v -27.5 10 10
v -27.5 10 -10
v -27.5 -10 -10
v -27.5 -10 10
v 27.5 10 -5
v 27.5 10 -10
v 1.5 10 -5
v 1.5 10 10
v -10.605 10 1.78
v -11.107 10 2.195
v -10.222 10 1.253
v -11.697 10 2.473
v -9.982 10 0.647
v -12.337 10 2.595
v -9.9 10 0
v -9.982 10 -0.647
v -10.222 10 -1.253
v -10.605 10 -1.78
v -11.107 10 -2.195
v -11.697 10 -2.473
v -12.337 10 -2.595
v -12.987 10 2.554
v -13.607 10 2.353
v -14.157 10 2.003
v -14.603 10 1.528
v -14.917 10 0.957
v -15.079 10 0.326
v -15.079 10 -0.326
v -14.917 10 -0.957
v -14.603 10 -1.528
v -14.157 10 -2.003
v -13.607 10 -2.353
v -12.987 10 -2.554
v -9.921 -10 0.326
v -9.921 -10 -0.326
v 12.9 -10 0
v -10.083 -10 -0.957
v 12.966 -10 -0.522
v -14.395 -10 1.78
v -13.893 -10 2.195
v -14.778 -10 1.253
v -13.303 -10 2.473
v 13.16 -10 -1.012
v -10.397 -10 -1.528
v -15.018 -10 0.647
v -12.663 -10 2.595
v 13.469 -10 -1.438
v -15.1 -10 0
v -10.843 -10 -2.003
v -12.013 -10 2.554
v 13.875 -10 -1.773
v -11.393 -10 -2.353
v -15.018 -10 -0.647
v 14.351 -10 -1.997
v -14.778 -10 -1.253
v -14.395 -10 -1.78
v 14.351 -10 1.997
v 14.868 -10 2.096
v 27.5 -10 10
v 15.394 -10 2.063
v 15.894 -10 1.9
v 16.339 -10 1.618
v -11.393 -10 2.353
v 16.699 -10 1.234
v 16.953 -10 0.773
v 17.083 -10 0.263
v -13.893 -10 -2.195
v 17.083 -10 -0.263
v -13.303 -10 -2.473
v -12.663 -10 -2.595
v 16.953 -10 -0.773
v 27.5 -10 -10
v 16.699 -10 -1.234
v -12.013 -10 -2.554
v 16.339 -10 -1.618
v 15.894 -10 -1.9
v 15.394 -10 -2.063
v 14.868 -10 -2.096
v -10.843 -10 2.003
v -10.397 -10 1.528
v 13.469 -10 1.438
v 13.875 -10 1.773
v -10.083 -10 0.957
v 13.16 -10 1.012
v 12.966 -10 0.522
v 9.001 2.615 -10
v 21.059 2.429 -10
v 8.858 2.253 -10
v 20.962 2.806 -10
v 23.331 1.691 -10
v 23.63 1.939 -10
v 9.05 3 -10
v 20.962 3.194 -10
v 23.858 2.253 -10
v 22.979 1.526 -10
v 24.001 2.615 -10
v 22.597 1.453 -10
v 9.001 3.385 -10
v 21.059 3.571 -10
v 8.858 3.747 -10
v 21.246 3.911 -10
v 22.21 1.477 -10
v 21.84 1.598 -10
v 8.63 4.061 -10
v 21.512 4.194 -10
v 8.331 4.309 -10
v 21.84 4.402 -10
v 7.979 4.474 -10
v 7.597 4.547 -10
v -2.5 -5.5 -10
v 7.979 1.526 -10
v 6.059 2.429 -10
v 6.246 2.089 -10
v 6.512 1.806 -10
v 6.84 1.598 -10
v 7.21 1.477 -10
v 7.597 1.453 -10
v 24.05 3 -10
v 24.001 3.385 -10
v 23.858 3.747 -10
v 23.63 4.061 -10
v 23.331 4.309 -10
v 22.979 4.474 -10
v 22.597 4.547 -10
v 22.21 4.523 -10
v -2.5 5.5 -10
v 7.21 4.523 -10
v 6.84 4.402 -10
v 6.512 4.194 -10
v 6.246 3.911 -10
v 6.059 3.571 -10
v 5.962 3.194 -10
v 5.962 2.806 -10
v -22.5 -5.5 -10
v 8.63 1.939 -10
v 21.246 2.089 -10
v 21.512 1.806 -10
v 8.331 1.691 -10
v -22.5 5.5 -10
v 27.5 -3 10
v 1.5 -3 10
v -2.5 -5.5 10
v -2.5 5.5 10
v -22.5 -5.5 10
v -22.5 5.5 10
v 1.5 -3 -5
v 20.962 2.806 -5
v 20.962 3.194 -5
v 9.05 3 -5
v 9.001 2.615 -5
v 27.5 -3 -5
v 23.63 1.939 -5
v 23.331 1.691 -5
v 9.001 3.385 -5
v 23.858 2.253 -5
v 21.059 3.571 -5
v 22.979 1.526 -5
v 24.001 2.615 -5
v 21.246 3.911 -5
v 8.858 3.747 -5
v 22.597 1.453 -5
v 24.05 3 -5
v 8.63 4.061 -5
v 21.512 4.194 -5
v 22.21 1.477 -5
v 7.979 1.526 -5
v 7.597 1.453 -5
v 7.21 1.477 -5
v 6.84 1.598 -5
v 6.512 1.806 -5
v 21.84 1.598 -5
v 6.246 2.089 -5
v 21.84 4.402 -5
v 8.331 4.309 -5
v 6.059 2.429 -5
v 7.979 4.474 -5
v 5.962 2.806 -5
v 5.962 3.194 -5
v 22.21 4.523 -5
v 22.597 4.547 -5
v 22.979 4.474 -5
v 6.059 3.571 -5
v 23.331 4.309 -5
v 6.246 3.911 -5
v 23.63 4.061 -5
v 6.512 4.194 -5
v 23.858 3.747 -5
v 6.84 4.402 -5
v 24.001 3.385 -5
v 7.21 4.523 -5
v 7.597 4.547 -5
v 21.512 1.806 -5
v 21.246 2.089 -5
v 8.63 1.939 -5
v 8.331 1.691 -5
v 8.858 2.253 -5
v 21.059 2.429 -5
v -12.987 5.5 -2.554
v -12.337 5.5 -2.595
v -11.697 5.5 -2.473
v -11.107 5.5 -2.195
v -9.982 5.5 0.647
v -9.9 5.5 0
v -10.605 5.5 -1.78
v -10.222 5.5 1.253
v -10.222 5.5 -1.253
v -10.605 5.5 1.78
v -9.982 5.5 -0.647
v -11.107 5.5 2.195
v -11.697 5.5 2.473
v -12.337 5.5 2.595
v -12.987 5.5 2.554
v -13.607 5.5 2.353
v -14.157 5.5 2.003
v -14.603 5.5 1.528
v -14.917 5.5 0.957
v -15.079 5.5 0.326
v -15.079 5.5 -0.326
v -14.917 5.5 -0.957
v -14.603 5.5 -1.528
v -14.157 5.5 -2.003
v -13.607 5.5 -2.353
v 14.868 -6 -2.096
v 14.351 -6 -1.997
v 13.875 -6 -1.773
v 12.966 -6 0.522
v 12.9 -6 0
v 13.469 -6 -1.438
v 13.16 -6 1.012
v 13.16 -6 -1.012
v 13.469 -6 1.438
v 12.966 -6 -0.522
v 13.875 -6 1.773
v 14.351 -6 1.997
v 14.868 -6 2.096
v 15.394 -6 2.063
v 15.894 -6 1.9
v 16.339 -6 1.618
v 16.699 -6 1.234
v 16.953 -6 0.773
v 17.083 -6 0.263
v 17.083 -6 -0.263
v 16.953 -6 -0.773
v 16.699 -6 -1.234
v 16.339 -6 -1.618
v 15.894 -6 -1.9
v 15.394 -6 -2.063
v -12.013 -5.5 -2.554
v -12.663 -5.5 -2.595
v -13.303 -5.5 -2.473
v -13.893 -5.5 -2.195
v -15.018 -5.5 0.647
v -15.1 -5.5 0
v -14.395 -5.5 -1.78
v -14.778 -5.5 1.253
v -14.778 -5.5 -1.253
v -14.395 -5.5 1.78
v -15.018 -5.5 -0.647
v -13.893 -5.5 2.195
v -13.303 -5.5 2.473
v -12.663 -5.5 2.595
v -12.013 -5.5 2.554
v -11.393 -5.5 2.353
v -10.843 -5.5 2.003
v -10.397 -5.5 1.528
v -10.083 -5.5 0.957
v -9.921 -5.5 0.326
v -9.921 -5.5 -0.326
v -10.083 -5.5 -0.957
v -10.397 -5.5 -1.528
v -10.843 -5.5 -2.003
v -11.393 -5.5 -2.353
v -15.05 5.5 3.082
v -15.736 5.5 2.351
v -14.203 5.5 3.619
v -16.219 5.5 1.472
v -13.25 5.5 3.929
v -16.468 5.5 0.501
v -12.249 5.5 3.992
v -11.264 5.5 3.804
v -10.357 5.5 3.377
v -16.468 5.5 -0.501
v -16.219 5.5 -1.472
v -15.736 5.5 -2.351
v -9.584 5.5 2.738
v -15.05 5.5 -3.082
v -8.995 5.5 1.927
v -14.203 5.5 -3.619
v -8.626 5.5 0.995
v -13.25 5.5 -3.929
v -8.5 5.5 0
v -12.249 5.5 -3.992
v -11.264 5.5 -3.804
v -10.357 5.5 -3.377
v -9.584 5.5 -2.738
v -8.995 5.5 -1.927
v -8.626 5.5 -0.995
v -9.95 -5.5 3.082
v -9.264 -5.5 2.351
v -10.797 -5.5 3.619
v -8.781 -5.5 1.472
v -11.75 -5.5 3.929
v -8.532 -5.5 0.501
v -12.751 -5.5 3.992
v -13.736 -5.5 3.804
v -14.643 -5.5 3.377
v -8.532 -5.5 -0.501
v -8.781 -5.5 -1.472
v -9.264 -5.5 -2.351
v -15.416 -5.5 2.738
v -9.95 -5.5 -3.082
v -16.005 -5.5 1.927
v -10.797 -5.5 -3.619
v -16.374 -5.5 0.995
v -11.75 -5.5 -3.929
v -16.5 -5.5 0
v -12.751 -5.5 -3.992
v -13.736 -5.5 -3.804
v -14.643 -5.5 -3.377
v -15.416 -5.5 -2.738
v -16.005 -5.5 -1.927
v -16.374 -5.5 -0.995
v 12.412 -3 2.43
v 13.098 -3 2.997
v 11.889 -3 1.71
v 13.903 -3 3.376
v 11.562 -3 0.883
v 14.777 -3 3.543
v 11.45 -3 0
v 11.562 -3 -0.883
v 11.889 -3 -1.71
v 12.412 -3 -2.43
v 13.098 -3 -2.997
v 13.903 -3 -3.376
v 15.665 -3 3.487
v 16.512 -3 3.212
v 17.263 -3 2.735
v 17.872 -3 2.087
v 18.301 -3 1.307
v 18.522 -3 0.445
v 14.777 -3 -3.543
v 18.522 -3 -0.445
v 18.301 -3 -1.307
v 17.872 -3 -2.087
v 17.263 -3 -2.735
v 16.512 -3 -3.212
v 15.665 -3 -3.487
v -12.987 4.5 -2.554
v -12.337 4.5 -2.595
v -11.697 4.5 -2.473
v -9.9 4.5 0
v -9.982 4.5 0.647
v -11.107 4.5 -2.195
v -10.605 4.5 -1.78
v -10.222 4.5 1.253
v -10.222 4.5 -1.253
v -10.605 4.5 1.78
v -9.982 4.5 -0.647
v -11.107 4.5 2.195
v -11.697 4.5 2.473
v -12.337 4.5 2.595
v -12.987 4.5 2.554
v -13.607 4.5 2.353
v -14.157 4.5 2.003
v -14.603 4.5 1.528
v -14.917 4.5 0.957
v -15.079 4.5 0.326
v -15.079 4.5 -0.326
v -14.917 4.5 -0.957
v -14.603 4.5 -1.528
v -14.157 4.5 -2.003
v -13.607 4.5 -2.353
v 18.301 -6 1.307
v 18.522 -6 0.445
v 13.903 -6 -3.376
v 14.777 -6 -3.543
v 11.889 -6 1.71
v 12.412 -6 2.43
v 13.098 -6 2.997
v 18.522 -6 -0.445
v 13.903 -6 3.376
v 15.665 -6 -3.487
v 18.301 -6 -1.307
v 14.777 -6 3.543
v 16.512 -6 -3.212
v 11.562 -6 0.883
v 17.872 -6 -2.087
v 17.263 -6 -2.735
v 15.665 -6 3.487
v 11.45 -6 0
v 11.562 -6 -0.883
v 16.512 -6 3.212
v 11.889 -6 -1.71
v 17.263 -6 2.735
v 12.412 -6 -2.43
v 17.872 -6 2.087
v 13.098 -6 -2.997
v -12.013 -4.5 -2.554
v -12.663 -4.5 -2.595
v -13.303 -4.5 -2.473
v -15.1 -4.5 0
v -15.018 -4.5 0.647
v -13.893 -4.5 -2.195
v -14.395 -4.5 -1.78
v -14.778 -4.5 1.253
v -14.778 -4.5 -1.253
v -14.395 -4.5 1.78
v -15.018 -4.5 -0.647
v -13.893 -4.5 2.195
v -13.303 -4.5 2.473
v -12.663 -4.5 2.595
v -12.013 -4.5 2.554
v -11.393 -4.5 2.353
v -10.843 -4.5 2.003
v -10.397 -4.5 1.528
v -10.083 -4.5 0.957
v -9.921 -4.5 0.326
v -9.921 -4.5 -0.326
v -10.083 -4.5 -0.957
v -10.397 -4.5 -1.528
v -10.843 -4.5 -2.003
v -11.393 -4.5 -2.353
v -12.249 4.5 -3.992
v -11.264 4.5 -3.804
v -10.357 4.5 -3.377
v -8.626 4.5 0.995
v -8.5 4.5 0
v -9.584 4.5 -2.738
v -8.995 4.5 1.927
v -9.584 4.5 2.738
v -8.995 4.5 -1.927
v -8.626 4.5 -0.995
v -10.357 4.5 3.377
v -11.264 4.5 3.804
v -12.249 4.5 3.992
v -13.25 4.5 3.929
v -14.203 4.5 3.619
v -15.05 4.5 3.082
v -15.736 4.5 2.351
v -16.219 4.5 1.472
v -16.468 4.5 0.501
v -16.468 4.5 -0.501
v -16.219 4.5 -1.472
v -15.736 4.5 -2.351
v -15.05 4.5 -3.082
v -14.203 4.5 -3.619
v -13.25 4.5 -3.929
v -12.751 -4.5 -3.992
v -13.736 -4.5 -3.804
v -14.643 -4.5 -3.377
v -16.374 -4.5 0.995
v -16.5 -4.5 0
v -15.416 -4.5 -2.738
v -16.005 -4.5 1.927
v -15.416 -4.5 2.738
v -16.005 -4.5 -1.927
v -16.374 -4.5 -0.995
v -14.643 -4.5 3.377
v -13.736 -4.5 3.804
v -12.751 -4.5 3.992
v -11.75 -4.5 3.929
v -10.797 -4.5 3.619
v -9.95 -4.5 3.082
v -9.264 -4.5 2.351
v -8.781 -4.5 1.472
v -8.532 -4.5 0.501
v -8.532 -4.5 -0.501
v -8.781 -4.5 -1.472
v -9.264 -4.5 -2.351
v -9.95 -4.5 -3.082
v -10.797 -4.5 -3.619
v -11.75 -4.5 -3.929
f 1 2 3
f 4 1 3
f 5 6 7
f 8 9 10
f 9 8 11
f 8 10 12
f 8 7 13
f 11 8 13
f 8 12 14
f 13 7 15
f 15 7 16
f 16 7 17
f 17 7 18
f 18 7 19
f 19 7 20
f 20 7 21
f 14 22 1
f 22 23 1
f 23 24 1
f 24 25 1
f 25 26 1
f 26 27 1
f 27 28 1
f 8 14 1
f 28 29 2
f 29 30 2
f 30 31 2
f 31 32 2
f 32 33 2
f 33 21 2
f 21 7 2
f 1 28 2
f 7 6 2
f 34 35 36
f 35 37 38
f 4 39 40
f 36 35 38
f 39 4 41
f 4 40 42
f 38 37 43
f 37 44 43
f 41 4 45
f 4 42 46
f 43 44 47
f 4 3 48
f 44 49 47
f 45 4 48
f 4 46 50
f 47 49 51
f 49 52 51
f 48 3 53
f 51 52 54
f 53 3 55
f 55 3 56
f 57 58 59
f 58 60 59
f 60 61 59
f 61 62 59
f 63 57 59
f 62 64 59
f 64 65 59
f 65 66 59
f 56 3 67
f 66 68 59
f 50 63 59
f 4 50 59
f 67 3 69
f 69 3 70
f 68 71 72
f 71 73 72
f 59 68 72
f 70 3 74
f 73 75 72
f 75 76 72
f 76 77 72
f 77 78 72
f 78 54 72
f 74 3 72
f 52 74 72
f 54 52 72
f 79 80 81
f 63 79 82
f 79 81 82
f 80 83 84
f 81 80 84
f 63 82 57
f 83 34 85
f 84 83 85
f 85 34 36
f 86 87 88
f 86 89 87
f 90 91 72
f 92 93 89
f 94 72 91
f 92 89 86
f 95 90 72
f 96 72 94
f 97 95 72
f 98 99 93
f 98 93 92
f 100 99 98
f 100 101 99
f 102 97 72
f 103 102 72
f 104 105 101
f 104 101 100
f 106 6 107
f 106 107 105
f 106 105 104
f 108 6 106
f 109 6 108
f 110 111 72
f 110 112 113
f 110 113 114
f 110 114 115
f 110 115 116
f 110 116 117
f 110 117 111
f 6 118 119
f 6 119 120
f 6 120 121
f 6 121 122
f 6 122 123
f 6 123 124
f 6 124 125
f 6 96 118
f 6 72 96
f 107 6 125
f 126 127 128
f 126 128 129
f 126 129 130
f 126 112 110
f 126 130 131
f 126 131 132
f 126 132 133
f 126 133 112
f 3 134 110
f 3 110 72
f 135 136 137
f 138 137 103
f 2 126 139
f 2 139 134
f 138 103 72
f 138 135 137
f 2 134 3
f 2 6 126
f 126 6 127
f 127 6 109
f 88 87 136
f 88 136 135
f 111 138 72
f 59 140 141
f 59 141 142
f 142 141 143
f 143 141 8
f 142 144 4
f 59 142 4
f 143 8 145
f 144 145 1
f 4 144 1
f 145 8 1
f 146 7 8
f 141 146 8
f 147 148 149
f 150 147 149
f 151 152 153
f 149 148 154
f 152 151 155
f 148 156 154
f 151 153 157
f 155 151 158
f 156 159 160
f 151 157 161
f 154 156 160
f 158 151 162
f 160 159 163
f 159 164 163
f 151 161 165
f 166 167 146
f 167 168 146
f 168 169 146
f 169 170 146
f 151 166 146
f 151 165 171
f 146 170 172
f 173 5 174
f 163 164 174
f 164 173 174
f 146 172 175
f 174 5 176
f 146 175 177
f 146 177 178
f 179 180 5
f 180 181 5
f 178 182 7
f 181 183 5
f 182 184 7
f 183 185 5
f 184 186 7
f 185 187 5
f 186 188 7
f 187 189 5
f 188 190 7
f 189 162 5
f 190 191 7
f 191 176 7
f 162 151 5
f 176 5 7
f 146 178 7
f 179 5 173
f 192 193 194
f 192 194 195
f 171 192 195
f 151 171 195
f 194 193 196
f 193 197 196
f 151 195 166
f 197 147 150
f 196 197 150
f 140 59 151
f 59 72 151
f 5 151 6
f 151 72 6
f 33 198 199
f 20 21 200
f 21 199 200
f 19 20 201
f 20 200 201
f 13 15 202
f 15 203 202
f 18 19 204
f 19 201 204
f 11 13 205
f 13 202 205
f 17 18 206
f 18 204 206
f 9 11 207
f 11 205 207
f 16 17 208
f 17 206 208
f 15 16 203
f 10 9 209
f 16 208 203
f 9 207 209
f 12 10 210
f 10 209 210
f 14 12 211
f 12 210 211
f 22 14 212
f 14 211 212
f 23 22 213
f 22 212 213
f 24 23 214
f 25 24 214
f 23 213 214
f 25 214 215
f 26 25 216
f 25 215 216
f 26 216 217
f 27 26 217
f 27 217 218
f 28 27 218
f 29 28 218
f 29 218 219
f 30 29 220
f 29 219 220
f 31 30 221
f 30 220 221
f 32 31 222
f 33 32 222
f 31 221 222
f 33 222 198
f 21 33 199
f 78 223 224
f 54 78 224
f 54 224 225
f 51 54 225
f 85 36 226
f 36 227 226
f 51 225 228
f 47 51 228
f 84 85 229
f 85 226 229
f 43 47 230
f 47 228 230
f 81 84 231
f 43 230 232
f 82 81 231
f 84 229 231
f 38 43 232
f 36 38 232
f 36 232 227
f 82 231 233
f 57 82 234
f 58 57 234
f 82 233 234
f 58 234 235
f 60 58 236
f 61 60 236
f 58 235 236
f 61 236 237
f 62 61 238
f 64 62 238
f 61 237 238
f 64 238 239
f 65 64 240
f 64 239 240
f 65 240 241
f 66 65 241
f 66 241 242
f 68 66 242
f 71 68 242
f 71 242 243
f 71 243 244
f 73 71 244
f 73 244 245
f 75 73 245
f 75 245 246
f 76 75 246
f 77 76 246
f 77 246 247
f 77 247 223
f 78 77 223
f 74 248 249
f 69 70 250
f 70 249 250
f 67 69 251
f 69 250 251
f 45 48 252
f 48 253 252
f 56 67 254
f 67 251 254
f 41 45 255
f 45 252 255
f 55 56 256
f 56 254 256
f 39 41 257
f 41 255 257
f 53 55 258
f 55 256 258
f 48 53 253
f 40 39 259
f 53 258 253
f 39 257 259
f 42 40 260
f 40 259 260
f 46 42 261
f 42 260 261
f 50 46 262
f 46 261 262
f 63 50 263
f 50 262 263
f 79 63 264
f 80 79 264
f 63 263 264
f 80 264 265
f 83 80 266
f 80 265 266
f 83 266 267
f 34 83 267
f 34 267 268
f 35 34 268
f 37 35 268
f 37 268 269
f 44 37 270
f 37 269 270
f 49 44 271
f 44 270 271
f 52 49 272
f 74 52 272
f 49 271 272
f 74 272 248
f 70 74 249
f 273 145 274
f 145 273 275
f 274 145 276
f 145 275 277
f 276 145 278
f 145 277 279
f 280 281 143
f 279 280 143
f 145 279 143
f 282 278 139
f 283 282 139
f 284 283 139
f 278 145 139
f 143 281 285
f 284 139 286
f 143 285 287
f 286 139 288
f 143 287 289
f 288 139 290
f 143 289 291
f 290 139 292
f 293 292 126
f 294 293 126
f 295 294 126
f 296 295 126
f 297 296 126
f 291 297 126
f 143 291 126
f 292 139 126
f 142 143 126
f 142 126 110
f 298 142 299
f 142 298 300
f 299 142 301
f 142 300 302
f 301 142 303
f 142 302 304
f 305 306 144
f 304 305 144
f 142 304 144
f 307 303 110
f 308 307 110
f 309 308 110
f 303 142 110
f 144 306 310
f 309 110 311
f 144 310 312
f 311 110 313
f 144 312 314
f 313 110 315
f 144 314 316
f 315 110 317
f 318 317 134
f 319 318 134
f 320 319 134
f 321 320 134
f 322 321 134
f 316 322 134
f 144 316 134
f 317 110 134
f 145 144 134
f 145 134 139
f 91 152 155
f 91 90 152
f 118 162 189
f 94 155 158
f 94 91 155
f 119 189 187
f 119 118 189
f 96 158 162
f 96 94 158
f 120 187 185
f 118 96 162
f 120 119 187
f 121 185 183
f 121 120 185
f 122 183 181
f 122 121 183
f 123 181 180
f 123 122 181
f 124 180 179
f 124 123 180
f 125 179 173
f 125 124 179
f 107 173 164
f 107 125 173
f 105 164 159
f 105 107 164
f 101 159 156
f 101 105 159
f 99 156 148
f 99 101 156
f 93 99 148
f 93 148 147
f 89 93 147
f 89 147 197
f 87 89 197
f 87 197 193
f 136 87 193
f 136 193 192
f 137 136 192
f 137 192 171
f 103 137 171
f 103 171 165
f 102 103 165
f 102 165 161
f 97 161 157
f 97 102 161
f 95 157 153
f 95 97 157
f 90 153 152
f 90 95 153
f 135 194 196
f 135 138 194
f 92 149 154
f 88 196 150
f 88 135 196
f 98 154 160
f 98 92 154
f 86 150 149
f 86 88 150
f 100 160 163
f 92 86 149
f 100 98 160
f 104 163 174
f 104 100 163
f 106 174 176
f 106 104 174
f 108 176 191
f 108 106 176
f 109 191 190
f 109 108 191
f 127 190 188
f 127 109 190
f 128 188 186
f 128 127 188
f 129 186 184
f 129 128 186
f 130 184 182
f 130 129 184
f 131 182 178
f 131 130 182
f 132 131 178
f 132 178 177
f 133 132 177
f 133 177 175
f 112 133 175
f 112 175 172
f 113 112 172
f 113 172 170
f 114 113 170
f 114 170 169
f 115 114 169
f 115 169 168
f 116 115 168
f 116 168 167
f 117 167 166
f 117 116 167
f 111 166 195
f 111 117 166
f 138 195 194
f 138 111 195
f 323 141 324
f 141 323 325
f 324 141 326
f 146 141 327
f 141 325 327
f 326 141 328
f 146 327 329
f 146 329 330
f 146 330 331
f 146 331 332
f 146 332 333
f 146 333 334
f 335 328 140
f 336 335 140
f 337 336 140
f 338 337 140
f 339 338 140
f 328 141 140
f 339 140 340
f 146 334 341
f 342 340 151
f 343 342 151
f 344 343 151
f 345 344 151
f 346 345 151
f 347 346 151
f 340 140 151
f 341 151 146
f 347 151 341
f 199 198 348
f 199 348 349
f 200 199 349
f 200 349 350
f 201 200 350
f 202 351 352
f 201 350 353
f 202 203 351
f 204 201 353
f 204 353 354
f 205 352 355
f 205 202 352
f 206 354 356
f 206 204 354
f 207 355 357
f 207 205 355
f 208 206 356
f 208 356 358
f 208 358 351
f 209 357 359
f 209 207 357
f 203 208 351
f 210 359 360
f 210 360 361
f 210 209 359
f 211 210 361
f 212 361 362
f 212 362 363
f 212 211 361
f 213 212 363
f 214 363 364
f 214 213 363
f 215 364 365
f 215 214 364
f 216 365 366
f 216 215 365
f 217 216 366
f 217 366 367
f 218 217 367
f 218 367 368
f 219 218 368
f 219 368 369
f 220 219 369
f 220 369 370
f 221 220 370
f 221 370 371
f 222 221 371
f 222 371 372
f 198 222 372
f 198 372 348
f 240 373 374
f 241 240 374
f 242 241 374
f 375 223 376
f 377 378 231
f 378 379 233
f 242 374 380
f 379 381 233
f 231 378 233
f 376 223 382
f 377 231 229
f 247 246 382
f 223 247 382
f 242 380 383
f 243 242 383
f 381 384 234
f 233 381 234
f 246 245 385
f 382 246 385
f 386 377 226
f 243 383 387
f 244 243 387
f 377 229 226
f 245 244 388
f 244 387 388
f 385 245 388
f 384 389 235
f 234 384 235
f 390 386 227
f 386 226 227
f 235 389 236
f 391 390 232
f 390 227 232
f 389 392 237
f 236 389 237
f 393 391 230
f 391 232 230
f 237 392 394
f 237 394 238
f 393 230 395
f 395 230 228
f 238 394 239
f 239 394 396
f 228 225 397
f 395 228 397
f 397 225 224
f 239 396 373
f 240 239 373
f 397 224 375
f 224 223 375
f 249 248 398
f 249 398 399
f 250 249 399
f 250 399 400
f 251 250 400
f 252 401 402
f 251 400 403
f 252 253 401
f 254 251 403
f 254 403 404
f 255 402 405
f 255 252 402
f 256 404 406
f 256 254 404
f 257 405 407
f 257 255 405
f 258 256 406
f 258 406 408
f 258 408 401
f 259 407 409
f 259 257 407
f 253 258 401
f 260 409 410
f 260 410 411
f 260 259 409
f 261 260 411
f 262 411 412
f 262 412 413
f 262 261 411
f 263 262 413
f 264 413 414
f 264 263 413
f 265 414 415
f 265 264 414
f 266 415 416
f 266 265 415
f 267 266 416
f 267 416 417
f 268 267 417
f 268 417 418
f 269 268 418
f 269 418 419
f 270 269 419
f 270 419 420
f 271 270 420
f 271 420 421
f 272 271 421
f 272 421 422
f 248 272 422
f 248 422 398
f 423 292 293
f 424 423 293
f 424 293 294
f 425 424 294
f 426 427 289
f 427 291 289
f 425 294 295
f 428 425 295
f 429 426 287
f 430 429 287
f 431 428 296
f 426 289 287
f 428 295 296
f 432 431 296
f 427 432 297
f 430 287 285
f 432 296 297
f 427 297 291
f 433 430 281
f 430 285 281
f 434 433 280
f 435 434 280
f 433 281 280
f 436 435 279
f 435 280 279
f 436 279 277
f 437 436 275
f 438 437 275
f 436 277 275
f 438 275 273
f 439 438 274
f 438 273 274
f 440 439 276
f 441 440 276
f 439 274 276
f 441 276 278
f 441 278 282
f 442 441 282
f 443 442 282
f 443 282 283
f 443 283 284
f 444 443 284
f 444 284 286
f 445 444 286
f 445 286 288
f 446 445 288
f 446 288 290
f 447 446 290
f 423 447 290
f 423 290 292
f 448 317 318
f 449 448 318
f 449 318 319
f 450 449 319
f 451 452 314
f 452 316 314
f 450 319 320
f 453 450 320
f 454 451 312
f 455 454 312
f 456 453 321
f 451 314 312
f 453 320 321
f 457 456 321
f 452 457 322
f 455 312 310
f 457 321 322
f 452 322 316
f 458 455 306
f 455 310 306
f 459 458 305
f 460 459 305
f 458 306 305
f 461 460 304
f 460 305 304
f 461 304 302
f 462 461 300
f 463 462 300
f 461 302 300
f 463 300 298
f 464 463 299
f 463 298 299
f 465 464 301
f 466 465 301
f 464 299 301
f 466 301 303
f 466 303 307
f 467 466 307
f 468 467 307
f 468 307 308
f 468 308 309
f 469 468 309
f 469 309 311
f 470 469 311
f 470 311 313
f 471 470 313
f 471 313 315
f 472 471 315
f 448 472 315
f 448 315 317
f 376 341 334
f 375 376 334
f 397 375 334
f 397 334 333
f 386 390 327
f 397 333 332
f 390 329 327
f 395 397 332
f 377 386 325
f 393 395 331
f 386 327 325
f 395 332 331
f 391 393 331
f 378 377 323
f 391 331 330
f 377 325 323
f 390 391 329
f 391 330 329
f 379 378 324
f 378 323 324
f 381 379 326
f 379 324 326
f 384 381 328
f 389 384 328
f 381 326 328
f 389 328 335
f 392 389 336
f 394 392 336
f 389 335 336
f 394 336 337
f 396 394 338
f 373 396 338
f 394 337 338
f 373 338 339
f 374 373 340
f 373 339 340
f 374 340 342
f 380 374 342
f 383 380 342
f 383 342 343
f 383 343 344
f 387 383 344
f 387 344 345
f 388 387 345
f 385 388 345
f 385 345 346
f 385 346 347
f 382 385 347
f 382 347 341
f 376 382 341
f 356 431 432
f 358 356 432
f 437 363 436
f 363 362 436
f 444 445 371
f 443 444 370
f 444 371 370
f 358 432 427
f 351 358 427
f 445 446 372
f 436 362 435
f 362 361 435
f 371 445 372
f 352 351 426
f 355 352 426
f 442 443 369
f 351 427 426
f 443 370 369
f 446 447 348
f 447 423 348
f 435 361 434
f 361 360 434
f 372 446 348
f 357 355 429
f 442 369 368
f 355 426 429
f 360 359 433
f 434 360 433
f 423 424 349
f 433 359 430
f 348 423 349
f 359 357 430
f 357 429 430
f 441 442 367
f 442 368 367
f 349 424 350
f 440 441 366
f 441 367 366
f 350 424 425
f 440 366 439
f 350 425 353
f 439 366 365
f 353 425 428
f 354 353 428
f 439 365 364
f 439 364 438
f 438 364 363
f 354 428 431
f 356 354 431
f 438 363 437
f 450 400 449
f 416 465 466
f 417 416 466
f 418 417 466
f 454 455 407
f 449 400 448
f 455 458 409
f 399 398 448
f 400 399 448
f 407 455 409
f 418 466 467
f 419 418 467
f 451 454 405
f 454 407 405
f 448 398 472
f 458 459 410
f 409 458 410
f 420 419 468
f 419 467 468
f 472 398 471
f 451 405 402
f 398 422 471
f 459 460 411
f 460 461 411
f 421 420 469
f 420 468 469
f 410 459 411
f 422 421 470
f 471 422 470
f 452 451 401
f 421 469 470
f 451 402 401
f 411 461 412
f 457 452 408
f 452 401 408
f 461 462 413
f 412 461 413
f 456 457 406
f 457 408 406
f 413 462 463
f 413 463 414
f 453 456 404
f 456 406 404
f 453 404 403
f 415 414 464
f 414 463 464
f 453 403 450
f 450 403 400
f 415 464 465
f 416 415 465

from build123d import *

# Parameters (mm, degrees)
SKETCH_W        = 55
SKETCH_H        = 20
SKETCH_R        = 1.55
SKETCH_W_2      = 20
SKETCH_H_2      = 11
PAD_DEPTH       = 10
SKETCH001_R     = 2.6
POCKET_DEPTH    = 5
SKETCH002_R     = 2.6
POCKET001_DEPTH = 5
SKETCH003_R     = 4
SKETCH003_R_2   = 2.6
PAD001_DEPTH    = 1
SKETCH004_R     = 4
SKETCH004_R_2   = 2.6
PAD002_DEPTH    = 1
SKETCH005_W     = 26
SKETCH005_H     = 15
POCKET002_DEPTH = 13
SKETCH006_R     = 2.1
POCKET003_DEPTH = 7
SKETCH007_R     = 3.55
SKETCH007_R_2   = 2.1
POCKET004_DEPTH = 3


with BuildPart() as part:
    # Sketch → Pad (new body, symmetric)
    with BuildSketch(Plane.XY):
        Rectangle(SKETCH_W, SKETCH_H)
        with Locations((7.5, 3)):
            Circle(SKETCH_R, mode=Mode.SUBTRACT)
        with Locations((22.5, 3)):
            Circle(SKETCH_R, mode=Mode.SUBTRACT)
        with Locations((-12.5, 0)):
            Rectangle(SKETCH_W_2, SKETCH_H_2, mode=Mode.SUBTRACT)
    extrude(amount=PAD_DEPTH, both=True)

    # Sketch001 → Pocket (cut)
    with BuildSketch(Plane.XZ.offset(-5.5)):
        with Locations((-12.5, 0)):
            Circle(SKETCH001_R)
    extrude(amount=-POCKET_DEPTH, mode=Mode.SUBTRACT)

    # Sketch002 → Pocket001 (cut)
    with BuildSketch(Plane(origin=(0, -5.5, 0), x_dir=(-1, 0, 0), z_dir=(0, 1, 0))):
        with Locations((12.5, 0)):
            Circle(SKETCH002_R)
    extrude(amount=-POCKET001_DEPTH, mode=Mode.SUBTRACT)

    # Sketch003 → Pad001 (new body)
    with BuildSketch(Plane(origin=(0, -5.5, 0), x_dir=(-1, 0, 0), z_dir=(0, 1, 0))):
        with Locations((12.5, 0)):
            Circle(SKETCH003_R)
        with Locations((12.5, 0)):
            Circle(SKETCH003_R_2, mode=Mode.SUBTRACT)
    extrude(amount=PAD001_DEPTH)

    # Sketch004 → Pad002 (new body)
    with BuildSketch(Plane.XZ.offset(-5.5)):
        with Locations((-12.5, 0)):
            Circle(SKETCH004_R)
        with Locations((-12.5, 0)):
            Circle(SKETCH004_R_2, mode=Mode.SUBTRACT)
    extrude(amount=PAD002_DEPTH)

    # Sketch005 → Pocket002 (cut)
    with BuildSketch(Plane(origin=(0, 10, 0), x_dir=(-1, 0, 0), z_dir=(0, 1, 0))):
        with Locations((-14.5, 2.5)):
            Rectangle(SKETCH005_W, SKETCH005_H)
    extrude(amount=-POCKET002_DEPTH, mode=Mode.SUBTRACT)

    # Sketch006 → Pocket003 (cut)
    with BuildSketch(Plane(origin=(0, -3, 0), x_dir=(-1, 0, 0), z_dir=(0, 1, 0))):
        with Locations((-15, 0)):
            Circle(SKETCH006_R)
    extrude(amount=-POCKET003_DEPTH, mode=Mode.SUBTRACT)

    # Sketch007 → Pocket004 (cut)
    with BuildSketch(Plane(origin=(0, -3, 0), x_dir=(-1, 0, 0), z_dir=(0, 1, 0))):
        with Locations((-15, 0)):
            Circle(SKETCH007_R)
        with Locations((-15, 0)):
            Circle(SKETCH007_R_2, mode=Mode.SUBTRACT)
    extrude(amount=-POCKET004_DEPTH, mode=Mode.SUBTRACT)


solid = part.part
